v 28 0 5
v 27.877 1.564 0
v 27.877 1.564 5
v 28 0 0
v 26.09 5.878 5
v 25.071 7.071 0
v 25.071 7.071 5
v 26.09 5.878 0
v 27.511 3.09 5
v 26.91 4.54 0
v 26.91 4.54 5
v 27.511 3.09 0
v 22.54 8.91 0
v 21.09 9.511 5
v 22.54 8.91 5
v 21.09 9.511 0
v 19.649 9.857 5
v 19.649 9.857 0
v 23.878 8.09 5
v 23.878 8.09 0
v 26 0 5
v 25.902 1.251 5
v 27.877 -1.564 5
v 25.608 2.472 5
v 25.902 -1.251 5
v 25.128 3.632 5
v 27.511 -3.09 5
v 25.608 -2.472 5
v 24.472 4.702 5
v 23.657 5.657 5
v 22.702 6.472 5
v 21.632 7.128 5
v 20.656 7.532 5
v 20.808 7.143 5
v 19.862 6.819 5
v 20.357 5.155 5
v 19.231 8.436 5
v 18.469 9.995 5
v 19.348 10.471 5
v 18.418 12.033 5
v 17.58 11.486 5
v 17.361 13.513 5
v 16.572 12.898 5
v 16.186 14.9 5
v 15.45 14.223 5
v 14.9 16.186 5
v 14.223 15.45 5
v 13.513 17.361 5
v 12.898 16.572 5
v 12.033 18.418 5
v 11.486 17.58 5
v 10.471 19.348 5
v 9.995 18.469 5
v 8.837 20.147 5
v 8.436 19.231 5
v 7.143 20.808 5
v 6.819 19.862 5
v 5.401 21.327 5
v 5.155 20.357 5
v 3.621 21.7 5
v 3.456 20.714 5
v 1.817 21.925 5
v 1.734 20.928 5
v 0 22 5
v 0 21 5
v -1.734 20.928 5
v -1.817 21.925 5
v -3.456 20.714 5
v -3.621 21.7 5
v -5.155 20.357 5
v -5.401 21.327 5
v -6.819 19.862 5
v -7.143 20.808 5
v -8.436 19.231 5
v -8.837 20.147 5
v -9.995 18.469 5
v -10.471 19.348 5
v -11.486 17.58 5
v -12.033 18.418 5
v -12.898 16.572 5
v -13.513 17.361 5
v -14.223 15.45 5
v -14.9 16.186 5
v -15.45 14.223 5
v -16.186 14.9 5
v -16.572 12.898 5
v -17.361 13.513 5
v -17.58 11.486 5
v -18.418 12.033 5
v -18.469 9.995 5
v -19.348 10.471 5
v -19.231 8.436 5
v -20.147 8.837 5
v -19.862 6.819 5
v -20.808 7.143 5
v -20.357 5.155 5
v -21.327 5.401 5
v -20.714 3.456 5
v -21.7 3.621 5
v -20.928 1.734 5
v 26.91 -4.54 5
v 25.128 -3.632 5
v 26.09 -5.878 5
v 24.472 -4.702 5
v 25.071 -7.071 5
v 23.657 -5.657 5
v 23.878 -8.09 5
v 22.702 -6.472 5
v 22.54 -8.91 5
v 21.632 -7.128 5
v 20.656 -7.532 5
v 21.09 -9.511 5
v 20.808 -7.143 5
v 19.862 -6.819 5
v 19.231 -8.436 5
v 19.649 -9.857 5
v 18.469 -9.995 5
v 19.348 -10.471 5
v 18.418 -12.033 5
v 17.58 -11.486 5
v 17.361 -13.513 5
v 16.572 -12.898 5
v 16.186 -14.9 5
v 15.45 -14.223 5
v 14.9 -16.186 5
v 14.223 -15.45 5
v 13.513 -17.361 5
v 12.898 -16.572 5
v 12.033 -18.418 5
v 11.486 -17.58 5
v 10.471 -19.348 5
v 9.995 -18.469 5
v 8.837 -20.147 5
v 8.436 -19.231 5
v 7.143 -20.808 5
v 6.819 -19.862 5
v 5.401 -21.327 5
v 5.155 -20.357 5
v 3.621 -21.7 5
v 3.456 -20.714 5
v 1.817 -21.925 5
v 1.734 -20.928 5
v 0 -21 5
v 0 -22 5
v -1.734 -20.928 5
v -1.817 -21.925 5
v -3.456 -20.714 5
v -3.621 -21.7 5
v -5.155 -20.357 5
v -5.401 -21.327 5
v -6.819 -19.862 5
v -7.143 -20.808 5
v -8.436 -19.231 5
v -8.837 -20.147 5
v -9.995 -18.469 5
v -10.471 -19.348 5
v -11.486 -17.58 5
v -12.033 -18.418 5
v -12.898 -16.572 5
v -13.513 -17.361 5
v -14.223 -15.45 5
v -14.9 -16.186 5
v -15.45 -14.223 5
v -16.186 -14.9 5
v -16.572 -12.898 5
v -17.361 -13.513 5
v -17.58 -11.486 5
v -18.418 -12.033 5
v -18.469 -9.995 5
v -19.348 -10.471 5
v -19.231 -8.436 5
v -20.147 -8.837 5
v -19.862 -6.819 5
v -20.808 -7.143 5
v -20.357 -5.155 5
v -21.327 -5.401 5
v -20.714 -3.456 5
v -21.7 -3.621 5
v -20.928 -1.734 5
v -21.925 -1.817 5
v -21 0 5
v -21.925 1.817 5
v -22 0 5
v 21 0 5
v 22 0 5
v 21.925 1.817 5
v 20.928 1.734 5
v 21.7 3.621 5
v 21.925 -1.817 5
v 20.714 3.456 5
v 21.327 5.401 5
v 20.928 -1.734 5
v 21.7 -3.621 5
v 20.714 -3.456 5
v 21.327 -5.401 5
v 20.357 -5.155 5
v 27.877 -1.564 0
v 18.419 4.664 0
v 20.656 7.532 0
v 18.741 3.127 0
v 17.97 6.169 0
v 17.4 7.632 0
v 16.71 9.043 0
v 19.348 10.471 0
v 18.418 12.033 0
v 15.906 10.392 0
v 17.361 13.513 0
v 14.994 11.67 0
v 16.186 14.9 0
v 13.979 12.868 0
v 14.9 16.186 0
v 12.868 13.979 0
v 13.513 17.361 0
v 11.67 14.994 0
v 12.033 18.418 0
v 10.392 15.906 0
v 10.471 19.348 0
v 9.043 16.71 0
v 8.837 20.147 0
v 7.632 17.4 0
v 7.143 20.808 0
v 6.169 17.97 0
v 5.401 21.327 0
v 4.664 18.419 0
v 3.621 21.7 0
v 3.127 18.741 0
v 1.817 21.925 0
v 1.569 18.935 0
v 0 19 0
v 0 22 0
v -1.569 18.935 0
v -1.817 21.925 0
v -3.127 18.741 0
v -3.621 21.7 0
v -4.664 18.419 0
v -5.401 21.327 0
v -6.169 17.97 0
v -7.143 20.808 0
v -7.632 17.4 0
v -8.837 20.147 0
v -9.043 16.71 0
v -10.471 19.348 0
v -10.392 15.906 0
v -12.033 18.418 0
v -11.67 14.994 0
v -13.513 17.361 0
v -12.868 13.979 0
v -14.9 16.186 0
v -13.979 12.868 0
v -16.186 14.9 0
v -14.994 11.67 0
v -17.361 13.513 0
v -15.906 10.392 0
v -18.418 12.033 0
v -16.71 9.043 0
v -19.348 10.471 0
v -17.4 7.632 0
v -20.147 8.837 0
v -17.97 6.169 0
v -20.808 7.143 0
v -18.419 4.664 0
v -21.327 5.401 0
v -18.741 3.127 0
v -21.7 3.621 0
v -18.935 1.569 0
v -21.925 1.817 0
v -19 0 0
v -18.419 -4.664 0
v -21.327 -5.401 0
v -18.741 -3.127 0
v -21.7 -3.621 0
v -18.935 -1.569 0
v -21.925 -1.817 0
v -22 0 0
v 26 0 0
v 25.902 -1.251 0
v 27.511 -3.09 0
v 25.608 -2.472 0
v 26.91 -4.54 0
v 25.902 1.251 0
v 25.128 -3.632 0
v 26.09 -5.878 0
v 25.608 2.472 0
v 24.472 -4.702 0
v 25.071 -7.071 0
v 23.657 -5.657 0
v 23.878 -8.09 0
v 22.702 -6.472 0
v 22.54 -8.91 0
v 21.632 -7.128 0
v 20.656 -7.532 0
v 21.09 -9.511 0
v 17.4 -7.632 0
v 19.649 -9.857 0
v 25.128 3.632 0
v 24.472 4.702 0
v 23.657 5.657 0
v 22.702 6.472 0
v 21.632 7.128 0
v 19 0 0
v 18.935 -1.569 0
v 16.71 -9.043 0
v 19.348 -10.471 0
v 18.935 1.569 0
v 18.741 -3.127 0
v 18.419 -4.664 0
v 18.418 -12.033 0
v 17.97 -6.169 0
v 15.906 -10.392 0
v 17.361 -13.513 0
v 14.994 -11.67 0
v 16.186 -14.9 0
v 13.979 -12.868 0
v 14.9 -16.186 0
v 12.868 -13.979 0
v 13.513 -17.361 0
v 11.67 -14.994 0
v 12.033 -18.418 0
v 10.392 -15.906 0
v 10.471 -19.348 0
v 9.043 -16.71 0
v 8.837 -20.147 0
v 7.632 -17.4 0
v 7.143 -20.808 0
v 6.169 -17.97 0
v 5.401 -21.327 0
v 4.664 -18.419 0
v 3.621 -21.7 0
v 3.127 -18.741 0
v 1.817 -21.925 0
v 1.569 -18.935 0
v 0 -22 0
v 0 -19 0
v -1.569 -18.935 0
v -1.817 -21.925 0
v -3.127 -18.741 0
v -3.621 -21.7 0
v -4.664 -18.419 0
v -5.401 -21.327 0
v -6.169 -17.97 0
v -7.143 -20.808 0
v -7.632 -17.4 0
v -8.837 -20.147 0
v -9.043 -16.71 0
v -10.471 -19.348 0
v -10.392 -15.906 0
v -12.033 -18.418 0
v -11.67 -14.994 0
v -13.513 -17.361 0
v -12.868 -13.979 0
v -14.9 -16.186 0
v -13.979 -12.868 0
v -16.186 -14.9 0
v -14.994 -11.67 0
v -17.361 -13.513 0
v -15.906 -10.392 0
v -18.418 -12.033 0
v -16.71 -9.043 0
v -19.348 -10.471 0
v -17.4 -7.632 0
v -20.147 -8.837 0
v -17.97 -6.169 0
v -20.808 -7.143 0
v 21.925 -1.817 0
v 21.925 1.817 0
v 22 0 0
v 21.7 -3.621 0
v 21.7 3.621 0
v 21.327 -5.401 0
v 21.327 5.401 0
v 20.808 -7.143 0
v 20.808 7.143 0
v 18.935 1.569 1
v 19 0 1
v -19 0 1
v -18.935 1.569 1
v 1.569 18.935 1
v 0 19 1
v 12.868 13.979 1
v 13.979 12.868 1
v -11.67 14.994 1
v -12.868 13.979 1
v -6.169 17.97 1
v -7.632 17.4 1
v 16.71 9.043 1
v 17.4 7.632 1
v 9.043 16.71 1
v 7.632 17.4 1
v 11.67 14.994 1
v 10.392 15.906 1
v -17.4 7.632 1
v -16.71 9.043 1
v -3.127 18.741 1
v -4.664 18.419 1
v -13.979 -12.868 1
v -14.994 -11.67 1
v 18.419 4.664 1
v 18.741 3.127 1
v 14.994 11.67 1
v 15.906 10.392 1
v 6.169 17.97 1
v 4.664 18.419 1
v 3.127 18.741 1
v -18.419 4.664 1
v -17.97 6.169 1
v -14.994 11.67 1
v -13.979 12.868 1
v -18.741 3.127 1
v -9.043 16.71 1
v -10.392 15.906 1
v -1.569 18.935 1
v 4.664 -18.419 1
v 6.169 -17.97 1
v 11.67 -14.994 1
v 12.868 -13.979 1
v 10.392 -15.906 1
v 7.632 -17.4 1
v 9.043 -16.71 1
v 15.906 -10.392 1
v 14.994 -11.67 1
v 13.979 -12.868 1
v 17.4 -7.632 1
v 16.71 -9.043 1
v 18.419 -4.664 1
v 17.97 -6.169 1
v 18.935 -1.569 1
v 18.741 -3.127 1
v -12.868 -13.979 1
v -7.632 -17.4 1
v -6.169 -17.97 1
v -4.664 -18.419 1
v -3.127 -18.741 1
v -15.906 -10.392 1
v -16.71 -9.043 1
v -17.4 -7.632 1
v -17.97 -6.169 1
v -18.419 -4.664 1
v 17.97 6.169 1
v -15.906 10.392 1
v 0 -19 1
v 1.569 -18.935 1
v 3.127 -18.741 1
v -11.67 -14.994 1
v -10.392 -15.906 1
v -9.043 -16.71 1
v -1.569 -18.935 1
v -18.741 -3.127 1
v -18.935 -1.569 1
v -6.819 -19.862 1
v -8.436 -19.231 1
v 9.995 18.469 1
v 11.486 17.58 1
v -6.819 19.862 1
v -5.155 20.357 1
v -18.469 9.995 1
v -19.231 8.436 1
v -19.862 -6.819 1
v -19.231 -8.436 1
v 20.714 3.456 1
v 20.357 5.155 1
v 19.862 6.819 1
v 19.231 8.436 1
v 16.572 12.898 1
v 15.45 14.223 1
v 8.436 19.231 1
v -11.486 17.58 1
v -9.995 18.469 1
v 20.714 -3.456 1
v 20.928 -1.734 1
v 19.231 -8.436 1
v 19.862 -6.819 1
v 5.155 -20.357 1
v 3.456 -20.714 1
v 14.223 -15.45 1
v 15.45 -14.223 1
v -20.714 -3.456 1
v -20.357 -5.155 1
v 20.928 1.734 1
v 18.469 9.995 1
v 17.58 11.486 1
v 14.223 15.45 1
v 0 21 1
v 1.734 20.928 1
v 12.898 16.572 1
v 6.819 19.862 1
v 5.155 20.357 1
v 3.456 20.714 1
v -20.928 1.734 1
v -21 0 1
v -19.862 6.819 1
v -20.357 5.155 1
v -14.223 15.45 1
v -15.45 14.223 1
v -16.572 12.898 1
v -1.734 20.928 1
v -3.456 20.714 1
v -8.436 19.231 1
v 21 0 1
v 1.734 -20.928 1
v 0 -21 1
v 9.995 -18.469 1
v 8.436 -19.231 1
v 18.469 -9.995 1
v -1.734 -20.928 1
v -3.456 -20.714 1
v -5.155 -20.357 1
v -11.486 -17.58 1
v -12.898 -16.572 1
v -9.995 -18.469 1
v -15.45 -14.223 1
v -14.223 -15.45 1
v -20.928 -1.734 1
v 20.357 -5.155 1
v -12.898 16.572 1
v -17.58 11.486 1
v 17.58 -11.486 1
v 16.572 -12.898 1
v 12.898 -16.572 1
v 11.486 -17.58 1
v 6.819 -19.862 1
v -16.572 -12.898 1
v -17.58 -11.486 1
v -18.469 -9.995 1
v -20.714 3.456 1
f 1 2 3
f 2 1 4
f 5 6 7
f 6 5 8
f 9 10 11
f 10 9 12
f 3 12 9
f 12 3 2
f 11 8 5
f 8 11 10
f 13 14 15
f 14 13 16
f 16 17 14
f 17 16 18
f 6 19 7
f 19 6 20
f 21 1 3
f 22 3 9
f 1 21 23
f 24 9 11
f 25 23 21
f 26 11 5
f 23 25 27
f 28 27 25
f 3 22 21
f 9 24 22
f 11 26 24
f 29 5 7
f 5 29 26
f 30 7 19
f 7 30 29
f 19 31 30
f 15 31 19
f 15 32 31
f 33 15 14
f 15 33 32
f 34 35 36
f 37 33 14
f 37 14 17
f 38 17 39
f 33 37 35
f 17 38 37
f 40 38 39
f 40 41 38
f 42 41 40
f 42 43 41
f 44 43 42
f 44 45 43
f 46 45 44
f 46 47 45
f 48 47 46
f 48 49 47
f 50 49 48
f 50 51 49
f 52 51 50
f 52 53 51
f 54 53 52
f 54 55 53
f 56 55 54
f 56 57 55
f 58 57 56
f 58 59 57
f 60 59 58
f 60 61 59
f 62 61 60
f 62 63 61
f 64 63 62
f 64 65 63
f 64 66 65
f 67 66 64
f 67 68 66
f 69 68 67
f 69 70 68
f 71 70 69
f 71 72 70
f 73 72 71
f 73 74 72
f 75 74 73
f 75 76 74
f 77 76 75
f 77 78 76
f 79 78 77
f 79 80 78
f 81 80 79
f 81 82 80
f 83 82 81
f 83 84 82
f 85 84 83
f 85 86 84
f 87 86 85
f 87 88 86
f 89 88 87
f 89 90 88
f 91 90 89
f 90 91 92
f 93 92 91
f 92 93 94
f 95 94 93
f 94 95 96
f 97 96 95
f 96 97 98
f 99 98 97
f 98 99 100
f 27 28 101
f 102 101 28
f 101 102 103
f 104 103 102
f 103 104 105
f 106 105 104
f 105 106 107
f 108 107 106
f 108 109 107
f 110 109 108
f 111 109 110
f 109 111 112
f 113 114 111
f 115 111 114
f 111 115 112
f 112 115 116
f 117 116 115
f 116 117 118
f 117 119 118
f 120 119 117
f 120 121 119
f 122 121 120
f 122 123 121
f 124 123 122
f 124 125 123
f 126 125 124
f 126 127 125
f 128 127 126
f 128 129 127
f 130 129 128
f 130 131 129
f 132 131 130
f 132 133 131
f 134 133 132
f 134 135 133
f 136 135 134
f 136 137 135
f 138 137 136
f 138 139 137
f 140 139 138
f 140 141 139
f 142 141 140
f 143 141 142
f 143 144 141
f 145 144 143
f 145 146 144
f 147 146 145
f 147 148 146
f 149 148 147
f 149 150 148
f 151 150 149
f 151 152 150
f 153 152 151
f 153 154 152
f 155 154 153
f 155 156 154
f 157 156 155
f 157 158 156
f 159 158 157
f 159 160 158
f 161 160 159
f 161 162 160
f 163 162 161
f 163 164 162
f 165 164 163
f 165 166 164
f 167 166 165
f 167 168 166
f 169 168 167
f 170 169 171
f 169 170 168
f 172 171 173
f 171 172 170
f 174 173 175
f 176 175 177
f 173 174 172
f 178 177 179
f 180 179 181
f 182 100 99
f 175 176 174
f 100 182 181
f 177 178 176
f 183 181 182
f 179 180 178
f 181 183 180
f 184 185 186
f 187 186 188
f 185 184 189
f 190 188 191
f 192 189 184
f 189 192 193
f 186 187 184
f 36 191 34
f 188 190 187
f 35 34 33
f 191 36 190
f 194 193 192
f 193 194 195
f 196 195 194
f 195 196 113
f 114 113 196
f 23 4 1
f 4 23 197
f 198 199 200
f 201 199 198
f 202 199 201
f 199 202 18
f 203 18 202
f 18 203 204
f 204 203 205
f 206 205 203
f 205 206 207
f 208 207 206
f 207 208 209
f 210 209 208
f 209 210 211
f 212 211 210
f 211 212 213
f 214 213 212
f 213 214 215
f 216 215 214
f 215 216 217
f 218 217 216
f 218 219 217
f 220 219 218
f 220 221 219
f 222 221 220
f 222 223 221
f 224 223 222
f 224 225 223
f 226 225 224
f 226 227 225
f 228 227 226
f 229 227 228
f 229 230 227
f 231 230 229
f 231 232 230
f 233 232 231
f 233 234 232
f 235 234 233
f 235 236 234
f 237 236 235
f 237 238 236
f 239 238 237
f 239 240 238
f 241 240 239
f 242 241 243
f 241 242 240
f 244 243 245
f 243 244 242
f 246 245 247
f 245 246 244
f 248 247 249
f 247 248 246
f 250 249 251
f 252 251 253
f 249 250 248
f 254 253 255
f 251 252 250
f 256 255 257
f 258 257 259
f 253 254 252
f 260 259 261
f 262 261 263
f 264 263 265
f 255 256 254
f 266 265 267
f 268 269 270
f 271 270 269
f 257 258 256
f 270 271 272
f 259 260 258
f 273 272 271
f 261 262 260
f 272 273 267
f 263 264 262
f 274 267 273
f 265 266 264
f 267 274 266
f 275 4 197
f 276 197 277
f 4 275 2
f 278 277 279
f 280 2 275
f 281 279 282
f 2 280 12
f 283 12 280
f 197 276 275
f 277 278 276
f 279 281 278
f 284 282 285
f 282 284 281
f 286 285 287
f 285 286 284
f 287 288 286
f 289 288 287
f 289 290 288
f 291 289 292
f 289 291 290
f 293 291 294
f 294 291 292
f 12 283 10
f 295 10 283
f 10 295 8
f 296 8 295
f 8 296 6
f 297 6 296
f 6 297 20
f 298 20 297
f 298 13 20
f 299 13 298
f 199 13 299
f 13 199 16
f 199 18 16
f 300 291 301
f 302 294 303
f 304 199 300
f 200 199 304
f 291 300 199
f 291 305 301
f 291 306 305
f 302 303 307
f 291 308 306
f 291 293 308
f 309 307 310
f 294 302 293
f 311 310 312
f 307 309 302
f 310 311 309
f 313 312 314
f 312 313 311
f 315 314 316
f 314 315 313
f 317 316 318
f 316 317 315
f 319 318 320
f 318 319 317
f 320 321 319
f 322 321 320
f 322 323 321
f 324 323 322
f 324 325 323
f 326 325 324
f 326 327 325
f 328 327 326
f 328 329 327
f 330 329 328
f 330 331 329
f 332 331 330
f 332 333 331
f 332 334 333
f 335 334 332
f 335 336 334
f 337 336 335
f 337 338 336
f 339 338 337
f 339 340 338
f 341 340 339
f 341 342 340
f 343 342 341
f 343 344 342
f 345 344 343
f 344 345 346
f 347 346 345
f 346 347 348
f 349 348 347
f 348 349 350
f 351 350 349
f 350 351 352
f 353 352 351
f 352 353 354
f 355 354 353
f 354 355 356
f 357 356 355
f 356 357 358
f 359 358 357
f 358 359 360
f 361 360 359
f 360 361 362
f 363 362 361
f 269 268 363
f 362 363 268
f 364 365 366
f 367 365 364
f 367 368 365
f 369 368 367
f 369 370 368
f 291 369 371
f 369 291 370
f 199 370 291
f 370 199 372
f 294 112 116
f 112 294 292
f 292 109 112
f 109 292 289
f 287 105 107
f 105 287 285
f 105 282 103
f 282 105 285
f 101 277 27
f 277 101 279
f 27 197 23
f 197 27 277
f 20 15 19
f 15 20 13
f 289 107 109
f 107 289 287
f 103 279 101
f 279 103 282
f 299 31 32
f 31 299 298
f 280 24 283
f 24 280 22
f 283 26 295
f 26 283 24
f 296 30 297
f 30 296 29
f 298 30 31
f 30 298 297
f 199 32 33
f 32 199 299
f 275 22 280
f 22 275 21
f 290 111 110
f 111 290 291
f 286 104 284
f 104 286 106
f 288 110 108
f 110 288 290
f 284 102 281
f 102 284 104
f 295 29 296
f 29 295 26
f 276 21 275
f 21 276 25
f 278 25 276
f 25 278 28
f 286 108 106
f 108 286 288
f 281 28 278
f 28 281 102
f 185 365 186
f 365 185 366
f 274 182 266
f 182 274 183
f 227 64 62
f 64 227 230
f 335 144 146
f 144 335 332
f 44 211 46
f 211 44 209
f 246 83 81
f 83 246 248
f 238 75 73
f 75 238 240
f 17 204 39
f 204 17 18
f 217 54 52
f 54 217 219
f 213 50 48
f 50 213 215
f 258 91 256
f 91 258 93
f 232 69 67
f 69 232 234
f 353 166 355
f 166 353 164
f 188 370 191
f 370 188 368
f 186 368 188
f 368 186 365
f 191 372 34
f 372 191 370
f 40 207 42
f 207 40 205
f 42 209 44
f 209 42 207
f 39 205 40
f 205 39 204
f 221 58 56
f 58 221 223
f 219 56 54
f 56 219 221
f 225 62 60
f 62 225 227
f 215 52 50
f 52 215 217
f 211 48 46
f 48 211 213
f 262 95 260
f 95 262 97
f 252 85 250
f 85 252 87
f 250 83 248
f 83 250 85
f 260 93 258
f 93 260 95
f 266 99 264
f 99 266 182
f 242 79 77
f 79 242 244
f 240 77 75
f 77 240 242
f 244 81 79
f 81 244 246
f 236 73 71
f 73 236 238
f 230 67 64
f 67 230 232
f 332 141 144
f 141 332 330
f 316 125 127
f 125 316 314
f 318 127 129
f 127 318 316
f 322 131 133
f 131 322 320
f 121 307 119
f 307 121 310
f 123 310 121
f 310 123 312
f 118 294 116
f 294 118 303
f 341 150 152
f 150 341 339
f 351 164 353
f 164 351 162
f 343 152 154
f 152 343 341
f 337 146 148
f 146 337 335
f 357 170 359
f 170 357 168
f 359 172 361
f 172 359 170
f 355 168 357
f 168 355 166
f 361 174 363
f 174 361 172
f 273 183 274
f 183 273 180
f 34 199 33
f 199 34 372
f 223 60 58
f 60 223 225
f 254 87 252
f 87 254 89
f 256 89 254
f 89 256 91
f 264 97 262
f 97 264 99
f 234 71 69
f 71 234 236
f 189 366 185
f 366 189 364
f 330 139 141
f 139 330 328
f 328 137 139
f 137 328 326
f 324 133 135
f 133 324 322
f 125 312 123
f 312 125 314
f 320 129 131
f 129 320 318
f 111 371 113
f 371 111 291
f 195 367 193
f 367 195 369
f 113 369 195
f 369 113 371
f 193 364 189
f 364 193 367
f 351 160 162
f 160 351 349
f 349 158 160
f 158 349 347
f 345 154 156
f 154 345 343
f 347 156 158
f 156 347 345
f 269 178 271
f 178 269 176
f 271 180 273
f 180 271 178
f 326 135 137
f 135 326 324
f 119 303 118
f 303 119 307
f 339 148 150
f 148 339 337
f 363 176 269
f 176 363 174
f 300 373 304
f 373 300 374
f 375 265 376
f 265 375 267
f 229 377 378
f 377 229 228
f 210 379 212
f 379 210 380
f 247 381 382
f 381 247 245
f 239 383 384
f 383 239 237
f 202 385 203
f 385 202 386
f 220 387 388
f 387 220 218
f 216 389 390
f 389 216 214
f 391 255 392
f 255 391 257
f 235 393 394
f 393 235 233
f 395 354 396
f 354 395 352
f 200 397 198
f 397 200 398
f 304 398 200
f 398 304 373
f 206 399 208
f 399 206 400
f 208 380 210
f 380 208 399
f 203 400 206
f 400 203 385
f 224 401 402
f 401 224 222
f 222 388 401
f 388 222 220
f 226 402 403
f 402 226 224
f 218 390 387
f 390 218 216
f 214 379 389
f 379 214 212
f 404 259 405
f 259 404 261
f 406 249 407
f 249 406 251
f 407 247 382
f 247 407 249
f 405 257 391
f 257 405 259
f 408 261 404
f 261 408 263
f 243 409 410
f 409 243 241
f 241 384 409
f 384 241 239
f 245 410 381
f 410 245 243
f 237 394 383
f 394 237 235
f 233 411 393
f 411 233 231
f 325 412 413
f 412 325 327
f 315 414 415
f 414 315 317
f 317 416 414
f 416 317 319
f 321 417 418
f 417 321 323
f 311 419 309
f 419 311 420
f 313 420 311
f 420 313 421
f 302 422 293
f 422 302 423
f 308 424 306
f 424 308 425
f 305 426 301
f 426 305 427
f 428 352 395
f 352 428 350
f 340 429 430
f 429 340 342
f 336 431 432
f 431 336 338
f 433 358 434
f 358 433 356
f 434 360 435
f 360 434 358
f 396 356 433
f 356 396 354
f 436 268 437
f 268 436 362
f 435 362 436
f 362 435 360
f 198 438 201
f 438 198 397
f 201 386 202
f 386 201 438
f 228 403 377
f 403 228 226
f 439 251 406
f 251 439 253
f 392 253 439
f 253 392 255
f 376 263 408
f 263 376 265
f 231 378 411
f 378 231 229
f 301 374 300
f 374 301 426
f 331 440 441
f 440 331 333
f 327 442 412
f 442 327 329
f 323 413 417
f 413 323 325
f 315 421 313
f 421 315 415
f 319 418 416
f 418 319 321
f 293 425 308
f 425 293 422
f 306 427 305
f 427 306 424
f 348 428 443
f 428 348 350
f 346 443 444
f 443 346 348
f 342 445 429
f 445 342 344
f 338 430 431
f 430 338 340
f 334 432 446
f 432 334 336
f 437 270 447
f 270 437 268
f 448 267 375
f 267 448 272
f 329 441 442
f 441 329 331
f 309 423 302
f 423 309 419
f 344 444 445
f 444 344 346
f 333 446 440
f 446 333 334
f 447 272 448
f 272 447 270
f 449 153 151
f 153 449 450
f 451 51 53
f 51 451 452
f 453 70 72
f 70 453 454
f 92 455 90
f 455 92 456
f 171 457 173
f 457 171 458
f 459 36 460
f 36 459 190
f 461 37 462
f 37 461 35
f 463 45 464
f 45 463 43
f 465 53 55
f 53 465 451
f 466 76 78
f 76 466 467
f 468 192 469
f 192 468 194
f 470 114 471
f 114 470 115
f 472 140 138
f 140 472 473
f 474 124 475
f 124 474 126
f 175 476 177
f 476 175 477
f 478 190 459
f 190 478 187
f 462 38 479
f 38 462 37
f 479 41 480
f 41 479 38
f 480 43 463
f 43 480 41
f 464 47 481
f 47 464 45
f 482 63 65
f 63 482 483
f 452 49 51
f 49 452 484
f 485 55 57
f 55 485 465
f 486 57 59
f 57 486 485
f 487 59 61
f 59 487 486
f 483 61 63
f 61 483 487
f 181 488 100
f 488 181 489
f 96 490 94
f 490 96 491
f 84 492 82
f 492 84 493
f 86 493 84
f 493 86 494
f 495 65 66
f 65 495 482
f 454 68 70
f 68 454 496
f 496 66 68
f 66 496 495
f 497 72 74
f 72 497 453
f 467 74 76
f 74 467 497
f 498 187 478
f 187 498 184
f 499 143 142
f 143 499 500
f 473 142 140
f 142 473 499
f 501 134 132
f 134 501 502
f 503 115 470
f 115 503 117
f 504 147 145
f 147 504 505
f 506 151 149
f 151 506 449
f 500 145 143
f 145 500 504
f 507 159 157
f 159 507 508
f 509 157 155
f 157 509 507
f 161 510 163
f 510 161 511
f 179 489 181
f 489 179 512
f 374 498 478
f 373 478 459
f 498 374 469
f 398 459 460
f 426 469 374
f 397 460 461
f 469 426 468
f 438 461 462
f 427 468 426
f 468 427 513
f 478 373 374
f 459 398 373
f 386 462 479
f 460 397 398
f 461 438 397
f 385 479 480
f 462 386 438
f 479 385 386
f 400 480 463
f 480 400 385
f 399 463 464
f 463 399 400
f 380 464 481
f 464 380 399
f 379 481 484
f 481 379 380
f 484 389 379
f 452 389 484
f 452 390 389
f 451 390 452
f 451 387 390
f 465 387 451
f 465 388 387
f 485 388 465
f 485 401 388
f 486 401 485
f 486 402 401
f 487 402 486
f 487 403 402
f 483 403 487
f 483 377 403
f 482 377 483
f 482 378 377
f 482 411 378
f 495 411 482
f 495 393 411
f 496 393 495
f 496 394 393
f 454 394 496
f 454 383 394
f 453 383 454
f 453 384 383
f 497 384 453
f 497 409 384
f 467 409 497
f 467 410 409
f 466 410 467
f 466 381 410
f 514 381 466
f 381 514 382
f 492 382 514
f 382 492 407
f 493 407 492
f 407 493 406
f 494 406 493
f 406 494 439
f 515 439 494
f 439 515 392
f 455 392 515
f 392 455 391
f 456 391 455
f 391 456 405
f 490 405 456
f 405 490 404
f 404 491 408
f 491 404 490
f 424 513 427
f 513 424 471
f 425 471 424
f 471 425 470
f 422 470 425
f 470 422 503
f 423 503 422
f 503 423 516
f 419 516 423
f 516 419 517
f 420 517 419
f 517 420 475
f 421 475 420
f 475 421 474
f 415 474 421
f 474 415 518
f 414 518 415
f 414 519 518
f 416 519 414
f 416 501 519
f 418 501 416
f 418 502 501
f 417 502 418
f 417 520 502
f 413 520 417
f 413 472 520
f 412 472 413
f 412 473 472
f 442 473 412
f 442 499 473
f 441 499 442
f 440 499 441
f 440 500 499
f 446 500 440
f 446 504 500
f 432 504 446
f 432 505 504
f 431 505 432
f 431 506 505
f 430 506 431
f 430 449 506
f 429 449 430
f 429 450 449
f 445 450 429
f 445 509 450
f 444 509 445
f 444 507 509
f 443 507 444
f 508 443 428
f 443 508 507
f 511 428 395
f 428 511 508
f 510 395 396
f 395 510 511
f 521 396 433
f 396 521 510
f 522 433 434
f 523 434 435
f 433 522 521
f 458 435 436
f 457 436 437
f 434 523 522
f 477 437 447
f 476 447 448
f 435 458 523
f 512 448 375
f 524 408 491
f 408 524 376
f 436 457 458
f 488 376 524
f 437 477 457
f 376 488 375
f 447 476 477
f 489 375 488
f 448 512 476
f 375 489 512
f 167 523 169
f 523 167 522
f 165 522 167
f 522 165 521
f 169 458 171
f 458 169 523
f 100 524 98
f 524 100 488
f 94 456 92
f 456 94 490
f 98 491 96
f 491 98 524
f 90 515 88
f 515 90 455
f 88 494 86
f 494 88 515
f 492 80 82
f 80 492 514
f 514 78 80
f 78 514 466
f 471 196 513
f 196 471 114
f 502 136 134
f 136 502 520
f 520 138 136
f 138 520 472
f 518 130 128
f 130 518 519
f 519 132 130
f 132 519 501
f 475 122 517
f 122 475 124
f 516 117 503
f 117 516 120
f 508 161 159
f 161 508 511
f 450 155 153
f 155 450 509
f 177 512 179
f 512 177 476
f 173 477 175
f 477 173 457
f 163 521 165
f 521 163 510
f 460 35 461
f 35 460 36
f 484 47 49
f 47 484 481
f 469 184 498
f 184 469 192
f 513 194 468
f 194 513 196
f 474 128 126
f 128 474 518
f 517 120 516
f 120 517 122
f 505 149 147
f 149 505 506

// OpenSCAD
COIN_DIAMETER = 38;
COIN_THICKNESS = 3;

difference(){
 
    union(){
        
         // hanging loop
        translate([COIN_DIAMETER - 20,0,0]){
            difference(){
                cylinder(r=10,h=COIN_THICKNESS + 2,$fn=40);
                translate([0,0,-1]){
                    cylinder(r=8,h=COIN_THICKNESS + 4,$fn=40);
                }
            }
        }
        
        // main body
        cylinder(r=(COIN_DIAMETER/2) + COIN_THICKNESS, h=COIN_THICKNESS + 2,$fn=(COIN_DIAMETER*2));
    }
 
    // coin opening
    translate([0,0,-1]){
        cylinder(r=(COIN_DIAMETER/2), h=COIN_THICKNESS + 4,$fn=(COIN_DIAMETER*2));
    }
    
    // lip opening
    translate([0,0,1]){
        cylinder(r=((COIN_DIAMETER/2) + COIN_THICKNESS - 1), h=COIN_THICKNESS + 2,$fn=(COIN_DIAMETER*2));
    }
}
